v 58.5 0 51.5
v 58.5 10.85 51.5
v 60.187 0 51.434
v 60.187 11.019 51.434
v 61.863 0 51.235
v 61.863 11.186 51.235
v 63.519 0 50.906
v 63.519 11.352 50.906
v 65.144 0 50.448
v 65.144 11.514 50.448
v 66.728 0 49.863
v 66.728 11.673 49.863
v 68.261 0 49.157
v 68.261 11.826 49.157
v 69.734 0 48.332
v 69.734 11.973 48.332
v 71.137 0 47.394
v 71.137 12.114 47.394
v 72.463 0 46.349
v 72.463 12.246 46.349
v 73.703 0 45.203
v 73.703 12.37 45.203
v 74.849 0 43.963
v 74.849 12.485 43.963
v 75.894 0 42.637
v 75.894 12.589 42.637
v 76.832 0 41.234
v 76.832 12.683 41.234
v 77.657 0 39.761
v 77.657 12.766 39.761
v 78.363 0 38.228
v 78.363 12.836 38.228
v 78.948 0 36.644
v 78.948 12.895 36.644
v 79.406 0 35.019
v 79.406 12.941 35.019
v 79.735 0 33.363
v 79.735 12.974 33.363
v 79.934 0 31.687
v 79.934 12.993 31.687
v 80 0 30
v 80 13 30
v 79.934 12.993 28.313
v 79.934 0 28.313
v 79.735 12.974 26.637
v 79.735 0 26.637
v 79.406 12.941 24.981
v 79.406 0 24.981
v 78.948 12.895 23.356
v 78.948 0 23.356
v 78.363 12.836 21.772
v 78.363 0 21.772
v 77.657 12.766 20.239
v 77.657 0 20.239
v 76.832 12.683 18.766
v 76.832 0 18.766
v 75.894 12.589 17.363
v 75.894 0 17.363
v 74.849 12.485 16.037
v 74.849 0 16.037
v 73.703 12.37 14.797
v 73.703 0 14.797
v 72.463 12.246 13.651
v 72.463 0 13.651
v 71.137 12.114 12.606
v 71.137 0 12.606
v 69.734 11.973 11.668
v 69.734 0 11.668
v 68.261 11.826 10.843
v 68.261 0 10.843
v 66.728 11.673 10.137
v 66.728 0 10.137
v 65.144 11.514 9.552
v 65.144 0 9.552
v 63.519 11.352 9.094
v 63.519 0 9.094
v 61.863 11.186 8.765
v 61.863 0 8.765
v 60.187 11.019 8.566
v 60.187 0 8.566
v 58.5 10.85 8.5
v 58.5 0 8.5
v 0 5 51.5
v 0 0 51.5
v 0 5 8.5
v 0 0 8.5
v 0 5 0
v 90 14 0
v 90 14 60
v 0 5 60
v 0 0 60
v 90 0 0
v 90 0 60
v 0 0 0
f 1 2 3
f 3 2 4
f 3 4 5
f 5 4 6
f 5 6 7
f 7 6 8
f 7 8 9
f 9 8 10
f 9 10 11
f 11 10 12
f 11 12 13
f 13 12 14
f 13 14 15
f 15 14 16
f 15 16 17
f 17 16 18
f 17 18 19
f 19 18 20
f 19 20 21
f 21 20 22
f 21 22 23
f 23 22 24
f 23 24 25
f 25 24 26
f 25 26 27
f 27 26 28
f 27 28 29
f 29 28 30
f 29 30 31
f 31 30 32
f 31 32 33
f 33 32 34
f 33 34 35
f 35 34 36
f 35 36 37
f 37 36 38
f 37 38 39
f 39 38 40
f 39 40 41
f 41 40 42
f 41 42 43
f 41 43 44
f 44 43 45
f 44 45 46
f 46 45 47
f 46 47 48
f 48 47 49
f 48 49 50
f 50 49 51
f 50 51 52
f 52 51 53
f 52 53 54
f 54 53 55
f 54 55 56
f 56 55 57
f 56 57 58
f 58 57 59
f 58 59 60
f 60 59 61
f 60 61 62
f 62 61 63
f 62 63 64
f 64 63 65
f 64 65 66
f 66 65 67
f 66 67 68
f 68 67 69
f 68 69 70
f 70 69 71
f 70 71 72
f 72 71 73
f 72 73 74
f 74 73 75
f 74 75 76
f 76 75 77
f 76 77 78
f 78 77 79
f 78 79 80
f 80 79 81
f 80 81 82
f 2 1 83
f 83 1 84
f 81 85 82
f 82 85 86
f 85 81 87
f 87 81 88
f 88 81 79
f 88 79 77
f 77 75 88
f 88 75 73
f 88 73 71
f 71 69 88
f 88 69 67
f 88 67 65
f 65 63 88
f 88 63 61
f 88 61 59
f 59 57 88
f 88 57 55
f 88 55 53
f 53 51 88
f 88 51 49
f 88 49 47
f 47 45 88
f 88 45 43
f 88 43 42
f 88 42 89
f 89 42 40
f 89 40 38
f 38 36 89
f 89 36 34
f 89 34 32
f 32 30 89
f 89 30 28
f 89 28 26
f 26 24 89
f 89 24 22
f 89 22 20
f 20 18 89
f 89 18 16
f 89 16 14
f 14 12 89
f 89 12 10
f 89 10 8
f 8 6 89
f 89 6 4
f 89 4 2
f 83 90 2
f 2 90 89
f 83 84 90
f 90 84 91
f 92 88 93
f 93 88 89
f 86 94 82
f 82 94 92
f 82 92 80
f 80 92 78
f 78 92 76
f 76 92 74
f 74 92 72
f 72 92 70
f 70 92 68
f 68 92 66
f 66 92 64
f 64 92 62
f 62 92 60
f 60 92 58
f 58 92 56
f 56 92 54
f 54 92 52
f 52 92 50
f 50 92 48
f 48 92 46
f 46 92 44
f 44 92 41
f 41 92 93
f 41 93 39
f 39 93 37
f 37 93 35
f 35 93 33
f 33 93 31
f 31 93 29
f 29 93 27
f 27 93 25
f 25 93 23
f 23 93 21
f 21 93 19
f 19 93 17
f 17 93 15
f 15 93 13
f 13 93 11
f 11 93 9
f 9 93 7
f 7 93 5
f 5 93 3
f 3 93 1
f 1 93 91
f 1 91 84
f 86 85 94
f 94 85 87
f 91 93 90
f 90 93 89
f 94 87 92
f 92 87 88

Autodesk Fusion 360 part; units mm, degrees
sketch "Sketch1" plane through (0, 0, 0) normal (0, 0, 1) x (1, 0, 0)
  line L0 (0, 0) -> (90, 0)
  line L1 (90, 0) -> (90, 14)
  line L2 (90, 14) -> (0, 5)
  line L3 (0, 5) -> (0, 0)
  dimension "d1" = 5
  dimension "d2" = 14
  dimension "d3" = 90
extrude "Extrude1" add sketch "Sketch1" along normal blind 60
sketch "Sketch2" plane through (0, 0, 0) normal (0, -1, 0) x (1, 0, 0)
  line L0 (0, 0) -> (90, 0)
  line L1 (90, 0) -> (90, 60)
  line L2 (90, 60) -> (0, 60)
  line L3 (0, 60) -> (0, 0)
  line L4 (0, 30) -> (90, 30) construction
  line L5 (58.5, 51.5) -> (0, 51.5)
  line L6 (58.5, 8.5) -> (0, 8.5)
  arc A0 (58.5, 8.5) -> (58.5, 51.5) centre (58.5, 30) ccw
  dimension "d6" = 43
  dimension "d8" = 10
extrude "Extrude2" cut sketch "Sketch2" against normal blind 46.857 contours L3 L5 L6 A0
